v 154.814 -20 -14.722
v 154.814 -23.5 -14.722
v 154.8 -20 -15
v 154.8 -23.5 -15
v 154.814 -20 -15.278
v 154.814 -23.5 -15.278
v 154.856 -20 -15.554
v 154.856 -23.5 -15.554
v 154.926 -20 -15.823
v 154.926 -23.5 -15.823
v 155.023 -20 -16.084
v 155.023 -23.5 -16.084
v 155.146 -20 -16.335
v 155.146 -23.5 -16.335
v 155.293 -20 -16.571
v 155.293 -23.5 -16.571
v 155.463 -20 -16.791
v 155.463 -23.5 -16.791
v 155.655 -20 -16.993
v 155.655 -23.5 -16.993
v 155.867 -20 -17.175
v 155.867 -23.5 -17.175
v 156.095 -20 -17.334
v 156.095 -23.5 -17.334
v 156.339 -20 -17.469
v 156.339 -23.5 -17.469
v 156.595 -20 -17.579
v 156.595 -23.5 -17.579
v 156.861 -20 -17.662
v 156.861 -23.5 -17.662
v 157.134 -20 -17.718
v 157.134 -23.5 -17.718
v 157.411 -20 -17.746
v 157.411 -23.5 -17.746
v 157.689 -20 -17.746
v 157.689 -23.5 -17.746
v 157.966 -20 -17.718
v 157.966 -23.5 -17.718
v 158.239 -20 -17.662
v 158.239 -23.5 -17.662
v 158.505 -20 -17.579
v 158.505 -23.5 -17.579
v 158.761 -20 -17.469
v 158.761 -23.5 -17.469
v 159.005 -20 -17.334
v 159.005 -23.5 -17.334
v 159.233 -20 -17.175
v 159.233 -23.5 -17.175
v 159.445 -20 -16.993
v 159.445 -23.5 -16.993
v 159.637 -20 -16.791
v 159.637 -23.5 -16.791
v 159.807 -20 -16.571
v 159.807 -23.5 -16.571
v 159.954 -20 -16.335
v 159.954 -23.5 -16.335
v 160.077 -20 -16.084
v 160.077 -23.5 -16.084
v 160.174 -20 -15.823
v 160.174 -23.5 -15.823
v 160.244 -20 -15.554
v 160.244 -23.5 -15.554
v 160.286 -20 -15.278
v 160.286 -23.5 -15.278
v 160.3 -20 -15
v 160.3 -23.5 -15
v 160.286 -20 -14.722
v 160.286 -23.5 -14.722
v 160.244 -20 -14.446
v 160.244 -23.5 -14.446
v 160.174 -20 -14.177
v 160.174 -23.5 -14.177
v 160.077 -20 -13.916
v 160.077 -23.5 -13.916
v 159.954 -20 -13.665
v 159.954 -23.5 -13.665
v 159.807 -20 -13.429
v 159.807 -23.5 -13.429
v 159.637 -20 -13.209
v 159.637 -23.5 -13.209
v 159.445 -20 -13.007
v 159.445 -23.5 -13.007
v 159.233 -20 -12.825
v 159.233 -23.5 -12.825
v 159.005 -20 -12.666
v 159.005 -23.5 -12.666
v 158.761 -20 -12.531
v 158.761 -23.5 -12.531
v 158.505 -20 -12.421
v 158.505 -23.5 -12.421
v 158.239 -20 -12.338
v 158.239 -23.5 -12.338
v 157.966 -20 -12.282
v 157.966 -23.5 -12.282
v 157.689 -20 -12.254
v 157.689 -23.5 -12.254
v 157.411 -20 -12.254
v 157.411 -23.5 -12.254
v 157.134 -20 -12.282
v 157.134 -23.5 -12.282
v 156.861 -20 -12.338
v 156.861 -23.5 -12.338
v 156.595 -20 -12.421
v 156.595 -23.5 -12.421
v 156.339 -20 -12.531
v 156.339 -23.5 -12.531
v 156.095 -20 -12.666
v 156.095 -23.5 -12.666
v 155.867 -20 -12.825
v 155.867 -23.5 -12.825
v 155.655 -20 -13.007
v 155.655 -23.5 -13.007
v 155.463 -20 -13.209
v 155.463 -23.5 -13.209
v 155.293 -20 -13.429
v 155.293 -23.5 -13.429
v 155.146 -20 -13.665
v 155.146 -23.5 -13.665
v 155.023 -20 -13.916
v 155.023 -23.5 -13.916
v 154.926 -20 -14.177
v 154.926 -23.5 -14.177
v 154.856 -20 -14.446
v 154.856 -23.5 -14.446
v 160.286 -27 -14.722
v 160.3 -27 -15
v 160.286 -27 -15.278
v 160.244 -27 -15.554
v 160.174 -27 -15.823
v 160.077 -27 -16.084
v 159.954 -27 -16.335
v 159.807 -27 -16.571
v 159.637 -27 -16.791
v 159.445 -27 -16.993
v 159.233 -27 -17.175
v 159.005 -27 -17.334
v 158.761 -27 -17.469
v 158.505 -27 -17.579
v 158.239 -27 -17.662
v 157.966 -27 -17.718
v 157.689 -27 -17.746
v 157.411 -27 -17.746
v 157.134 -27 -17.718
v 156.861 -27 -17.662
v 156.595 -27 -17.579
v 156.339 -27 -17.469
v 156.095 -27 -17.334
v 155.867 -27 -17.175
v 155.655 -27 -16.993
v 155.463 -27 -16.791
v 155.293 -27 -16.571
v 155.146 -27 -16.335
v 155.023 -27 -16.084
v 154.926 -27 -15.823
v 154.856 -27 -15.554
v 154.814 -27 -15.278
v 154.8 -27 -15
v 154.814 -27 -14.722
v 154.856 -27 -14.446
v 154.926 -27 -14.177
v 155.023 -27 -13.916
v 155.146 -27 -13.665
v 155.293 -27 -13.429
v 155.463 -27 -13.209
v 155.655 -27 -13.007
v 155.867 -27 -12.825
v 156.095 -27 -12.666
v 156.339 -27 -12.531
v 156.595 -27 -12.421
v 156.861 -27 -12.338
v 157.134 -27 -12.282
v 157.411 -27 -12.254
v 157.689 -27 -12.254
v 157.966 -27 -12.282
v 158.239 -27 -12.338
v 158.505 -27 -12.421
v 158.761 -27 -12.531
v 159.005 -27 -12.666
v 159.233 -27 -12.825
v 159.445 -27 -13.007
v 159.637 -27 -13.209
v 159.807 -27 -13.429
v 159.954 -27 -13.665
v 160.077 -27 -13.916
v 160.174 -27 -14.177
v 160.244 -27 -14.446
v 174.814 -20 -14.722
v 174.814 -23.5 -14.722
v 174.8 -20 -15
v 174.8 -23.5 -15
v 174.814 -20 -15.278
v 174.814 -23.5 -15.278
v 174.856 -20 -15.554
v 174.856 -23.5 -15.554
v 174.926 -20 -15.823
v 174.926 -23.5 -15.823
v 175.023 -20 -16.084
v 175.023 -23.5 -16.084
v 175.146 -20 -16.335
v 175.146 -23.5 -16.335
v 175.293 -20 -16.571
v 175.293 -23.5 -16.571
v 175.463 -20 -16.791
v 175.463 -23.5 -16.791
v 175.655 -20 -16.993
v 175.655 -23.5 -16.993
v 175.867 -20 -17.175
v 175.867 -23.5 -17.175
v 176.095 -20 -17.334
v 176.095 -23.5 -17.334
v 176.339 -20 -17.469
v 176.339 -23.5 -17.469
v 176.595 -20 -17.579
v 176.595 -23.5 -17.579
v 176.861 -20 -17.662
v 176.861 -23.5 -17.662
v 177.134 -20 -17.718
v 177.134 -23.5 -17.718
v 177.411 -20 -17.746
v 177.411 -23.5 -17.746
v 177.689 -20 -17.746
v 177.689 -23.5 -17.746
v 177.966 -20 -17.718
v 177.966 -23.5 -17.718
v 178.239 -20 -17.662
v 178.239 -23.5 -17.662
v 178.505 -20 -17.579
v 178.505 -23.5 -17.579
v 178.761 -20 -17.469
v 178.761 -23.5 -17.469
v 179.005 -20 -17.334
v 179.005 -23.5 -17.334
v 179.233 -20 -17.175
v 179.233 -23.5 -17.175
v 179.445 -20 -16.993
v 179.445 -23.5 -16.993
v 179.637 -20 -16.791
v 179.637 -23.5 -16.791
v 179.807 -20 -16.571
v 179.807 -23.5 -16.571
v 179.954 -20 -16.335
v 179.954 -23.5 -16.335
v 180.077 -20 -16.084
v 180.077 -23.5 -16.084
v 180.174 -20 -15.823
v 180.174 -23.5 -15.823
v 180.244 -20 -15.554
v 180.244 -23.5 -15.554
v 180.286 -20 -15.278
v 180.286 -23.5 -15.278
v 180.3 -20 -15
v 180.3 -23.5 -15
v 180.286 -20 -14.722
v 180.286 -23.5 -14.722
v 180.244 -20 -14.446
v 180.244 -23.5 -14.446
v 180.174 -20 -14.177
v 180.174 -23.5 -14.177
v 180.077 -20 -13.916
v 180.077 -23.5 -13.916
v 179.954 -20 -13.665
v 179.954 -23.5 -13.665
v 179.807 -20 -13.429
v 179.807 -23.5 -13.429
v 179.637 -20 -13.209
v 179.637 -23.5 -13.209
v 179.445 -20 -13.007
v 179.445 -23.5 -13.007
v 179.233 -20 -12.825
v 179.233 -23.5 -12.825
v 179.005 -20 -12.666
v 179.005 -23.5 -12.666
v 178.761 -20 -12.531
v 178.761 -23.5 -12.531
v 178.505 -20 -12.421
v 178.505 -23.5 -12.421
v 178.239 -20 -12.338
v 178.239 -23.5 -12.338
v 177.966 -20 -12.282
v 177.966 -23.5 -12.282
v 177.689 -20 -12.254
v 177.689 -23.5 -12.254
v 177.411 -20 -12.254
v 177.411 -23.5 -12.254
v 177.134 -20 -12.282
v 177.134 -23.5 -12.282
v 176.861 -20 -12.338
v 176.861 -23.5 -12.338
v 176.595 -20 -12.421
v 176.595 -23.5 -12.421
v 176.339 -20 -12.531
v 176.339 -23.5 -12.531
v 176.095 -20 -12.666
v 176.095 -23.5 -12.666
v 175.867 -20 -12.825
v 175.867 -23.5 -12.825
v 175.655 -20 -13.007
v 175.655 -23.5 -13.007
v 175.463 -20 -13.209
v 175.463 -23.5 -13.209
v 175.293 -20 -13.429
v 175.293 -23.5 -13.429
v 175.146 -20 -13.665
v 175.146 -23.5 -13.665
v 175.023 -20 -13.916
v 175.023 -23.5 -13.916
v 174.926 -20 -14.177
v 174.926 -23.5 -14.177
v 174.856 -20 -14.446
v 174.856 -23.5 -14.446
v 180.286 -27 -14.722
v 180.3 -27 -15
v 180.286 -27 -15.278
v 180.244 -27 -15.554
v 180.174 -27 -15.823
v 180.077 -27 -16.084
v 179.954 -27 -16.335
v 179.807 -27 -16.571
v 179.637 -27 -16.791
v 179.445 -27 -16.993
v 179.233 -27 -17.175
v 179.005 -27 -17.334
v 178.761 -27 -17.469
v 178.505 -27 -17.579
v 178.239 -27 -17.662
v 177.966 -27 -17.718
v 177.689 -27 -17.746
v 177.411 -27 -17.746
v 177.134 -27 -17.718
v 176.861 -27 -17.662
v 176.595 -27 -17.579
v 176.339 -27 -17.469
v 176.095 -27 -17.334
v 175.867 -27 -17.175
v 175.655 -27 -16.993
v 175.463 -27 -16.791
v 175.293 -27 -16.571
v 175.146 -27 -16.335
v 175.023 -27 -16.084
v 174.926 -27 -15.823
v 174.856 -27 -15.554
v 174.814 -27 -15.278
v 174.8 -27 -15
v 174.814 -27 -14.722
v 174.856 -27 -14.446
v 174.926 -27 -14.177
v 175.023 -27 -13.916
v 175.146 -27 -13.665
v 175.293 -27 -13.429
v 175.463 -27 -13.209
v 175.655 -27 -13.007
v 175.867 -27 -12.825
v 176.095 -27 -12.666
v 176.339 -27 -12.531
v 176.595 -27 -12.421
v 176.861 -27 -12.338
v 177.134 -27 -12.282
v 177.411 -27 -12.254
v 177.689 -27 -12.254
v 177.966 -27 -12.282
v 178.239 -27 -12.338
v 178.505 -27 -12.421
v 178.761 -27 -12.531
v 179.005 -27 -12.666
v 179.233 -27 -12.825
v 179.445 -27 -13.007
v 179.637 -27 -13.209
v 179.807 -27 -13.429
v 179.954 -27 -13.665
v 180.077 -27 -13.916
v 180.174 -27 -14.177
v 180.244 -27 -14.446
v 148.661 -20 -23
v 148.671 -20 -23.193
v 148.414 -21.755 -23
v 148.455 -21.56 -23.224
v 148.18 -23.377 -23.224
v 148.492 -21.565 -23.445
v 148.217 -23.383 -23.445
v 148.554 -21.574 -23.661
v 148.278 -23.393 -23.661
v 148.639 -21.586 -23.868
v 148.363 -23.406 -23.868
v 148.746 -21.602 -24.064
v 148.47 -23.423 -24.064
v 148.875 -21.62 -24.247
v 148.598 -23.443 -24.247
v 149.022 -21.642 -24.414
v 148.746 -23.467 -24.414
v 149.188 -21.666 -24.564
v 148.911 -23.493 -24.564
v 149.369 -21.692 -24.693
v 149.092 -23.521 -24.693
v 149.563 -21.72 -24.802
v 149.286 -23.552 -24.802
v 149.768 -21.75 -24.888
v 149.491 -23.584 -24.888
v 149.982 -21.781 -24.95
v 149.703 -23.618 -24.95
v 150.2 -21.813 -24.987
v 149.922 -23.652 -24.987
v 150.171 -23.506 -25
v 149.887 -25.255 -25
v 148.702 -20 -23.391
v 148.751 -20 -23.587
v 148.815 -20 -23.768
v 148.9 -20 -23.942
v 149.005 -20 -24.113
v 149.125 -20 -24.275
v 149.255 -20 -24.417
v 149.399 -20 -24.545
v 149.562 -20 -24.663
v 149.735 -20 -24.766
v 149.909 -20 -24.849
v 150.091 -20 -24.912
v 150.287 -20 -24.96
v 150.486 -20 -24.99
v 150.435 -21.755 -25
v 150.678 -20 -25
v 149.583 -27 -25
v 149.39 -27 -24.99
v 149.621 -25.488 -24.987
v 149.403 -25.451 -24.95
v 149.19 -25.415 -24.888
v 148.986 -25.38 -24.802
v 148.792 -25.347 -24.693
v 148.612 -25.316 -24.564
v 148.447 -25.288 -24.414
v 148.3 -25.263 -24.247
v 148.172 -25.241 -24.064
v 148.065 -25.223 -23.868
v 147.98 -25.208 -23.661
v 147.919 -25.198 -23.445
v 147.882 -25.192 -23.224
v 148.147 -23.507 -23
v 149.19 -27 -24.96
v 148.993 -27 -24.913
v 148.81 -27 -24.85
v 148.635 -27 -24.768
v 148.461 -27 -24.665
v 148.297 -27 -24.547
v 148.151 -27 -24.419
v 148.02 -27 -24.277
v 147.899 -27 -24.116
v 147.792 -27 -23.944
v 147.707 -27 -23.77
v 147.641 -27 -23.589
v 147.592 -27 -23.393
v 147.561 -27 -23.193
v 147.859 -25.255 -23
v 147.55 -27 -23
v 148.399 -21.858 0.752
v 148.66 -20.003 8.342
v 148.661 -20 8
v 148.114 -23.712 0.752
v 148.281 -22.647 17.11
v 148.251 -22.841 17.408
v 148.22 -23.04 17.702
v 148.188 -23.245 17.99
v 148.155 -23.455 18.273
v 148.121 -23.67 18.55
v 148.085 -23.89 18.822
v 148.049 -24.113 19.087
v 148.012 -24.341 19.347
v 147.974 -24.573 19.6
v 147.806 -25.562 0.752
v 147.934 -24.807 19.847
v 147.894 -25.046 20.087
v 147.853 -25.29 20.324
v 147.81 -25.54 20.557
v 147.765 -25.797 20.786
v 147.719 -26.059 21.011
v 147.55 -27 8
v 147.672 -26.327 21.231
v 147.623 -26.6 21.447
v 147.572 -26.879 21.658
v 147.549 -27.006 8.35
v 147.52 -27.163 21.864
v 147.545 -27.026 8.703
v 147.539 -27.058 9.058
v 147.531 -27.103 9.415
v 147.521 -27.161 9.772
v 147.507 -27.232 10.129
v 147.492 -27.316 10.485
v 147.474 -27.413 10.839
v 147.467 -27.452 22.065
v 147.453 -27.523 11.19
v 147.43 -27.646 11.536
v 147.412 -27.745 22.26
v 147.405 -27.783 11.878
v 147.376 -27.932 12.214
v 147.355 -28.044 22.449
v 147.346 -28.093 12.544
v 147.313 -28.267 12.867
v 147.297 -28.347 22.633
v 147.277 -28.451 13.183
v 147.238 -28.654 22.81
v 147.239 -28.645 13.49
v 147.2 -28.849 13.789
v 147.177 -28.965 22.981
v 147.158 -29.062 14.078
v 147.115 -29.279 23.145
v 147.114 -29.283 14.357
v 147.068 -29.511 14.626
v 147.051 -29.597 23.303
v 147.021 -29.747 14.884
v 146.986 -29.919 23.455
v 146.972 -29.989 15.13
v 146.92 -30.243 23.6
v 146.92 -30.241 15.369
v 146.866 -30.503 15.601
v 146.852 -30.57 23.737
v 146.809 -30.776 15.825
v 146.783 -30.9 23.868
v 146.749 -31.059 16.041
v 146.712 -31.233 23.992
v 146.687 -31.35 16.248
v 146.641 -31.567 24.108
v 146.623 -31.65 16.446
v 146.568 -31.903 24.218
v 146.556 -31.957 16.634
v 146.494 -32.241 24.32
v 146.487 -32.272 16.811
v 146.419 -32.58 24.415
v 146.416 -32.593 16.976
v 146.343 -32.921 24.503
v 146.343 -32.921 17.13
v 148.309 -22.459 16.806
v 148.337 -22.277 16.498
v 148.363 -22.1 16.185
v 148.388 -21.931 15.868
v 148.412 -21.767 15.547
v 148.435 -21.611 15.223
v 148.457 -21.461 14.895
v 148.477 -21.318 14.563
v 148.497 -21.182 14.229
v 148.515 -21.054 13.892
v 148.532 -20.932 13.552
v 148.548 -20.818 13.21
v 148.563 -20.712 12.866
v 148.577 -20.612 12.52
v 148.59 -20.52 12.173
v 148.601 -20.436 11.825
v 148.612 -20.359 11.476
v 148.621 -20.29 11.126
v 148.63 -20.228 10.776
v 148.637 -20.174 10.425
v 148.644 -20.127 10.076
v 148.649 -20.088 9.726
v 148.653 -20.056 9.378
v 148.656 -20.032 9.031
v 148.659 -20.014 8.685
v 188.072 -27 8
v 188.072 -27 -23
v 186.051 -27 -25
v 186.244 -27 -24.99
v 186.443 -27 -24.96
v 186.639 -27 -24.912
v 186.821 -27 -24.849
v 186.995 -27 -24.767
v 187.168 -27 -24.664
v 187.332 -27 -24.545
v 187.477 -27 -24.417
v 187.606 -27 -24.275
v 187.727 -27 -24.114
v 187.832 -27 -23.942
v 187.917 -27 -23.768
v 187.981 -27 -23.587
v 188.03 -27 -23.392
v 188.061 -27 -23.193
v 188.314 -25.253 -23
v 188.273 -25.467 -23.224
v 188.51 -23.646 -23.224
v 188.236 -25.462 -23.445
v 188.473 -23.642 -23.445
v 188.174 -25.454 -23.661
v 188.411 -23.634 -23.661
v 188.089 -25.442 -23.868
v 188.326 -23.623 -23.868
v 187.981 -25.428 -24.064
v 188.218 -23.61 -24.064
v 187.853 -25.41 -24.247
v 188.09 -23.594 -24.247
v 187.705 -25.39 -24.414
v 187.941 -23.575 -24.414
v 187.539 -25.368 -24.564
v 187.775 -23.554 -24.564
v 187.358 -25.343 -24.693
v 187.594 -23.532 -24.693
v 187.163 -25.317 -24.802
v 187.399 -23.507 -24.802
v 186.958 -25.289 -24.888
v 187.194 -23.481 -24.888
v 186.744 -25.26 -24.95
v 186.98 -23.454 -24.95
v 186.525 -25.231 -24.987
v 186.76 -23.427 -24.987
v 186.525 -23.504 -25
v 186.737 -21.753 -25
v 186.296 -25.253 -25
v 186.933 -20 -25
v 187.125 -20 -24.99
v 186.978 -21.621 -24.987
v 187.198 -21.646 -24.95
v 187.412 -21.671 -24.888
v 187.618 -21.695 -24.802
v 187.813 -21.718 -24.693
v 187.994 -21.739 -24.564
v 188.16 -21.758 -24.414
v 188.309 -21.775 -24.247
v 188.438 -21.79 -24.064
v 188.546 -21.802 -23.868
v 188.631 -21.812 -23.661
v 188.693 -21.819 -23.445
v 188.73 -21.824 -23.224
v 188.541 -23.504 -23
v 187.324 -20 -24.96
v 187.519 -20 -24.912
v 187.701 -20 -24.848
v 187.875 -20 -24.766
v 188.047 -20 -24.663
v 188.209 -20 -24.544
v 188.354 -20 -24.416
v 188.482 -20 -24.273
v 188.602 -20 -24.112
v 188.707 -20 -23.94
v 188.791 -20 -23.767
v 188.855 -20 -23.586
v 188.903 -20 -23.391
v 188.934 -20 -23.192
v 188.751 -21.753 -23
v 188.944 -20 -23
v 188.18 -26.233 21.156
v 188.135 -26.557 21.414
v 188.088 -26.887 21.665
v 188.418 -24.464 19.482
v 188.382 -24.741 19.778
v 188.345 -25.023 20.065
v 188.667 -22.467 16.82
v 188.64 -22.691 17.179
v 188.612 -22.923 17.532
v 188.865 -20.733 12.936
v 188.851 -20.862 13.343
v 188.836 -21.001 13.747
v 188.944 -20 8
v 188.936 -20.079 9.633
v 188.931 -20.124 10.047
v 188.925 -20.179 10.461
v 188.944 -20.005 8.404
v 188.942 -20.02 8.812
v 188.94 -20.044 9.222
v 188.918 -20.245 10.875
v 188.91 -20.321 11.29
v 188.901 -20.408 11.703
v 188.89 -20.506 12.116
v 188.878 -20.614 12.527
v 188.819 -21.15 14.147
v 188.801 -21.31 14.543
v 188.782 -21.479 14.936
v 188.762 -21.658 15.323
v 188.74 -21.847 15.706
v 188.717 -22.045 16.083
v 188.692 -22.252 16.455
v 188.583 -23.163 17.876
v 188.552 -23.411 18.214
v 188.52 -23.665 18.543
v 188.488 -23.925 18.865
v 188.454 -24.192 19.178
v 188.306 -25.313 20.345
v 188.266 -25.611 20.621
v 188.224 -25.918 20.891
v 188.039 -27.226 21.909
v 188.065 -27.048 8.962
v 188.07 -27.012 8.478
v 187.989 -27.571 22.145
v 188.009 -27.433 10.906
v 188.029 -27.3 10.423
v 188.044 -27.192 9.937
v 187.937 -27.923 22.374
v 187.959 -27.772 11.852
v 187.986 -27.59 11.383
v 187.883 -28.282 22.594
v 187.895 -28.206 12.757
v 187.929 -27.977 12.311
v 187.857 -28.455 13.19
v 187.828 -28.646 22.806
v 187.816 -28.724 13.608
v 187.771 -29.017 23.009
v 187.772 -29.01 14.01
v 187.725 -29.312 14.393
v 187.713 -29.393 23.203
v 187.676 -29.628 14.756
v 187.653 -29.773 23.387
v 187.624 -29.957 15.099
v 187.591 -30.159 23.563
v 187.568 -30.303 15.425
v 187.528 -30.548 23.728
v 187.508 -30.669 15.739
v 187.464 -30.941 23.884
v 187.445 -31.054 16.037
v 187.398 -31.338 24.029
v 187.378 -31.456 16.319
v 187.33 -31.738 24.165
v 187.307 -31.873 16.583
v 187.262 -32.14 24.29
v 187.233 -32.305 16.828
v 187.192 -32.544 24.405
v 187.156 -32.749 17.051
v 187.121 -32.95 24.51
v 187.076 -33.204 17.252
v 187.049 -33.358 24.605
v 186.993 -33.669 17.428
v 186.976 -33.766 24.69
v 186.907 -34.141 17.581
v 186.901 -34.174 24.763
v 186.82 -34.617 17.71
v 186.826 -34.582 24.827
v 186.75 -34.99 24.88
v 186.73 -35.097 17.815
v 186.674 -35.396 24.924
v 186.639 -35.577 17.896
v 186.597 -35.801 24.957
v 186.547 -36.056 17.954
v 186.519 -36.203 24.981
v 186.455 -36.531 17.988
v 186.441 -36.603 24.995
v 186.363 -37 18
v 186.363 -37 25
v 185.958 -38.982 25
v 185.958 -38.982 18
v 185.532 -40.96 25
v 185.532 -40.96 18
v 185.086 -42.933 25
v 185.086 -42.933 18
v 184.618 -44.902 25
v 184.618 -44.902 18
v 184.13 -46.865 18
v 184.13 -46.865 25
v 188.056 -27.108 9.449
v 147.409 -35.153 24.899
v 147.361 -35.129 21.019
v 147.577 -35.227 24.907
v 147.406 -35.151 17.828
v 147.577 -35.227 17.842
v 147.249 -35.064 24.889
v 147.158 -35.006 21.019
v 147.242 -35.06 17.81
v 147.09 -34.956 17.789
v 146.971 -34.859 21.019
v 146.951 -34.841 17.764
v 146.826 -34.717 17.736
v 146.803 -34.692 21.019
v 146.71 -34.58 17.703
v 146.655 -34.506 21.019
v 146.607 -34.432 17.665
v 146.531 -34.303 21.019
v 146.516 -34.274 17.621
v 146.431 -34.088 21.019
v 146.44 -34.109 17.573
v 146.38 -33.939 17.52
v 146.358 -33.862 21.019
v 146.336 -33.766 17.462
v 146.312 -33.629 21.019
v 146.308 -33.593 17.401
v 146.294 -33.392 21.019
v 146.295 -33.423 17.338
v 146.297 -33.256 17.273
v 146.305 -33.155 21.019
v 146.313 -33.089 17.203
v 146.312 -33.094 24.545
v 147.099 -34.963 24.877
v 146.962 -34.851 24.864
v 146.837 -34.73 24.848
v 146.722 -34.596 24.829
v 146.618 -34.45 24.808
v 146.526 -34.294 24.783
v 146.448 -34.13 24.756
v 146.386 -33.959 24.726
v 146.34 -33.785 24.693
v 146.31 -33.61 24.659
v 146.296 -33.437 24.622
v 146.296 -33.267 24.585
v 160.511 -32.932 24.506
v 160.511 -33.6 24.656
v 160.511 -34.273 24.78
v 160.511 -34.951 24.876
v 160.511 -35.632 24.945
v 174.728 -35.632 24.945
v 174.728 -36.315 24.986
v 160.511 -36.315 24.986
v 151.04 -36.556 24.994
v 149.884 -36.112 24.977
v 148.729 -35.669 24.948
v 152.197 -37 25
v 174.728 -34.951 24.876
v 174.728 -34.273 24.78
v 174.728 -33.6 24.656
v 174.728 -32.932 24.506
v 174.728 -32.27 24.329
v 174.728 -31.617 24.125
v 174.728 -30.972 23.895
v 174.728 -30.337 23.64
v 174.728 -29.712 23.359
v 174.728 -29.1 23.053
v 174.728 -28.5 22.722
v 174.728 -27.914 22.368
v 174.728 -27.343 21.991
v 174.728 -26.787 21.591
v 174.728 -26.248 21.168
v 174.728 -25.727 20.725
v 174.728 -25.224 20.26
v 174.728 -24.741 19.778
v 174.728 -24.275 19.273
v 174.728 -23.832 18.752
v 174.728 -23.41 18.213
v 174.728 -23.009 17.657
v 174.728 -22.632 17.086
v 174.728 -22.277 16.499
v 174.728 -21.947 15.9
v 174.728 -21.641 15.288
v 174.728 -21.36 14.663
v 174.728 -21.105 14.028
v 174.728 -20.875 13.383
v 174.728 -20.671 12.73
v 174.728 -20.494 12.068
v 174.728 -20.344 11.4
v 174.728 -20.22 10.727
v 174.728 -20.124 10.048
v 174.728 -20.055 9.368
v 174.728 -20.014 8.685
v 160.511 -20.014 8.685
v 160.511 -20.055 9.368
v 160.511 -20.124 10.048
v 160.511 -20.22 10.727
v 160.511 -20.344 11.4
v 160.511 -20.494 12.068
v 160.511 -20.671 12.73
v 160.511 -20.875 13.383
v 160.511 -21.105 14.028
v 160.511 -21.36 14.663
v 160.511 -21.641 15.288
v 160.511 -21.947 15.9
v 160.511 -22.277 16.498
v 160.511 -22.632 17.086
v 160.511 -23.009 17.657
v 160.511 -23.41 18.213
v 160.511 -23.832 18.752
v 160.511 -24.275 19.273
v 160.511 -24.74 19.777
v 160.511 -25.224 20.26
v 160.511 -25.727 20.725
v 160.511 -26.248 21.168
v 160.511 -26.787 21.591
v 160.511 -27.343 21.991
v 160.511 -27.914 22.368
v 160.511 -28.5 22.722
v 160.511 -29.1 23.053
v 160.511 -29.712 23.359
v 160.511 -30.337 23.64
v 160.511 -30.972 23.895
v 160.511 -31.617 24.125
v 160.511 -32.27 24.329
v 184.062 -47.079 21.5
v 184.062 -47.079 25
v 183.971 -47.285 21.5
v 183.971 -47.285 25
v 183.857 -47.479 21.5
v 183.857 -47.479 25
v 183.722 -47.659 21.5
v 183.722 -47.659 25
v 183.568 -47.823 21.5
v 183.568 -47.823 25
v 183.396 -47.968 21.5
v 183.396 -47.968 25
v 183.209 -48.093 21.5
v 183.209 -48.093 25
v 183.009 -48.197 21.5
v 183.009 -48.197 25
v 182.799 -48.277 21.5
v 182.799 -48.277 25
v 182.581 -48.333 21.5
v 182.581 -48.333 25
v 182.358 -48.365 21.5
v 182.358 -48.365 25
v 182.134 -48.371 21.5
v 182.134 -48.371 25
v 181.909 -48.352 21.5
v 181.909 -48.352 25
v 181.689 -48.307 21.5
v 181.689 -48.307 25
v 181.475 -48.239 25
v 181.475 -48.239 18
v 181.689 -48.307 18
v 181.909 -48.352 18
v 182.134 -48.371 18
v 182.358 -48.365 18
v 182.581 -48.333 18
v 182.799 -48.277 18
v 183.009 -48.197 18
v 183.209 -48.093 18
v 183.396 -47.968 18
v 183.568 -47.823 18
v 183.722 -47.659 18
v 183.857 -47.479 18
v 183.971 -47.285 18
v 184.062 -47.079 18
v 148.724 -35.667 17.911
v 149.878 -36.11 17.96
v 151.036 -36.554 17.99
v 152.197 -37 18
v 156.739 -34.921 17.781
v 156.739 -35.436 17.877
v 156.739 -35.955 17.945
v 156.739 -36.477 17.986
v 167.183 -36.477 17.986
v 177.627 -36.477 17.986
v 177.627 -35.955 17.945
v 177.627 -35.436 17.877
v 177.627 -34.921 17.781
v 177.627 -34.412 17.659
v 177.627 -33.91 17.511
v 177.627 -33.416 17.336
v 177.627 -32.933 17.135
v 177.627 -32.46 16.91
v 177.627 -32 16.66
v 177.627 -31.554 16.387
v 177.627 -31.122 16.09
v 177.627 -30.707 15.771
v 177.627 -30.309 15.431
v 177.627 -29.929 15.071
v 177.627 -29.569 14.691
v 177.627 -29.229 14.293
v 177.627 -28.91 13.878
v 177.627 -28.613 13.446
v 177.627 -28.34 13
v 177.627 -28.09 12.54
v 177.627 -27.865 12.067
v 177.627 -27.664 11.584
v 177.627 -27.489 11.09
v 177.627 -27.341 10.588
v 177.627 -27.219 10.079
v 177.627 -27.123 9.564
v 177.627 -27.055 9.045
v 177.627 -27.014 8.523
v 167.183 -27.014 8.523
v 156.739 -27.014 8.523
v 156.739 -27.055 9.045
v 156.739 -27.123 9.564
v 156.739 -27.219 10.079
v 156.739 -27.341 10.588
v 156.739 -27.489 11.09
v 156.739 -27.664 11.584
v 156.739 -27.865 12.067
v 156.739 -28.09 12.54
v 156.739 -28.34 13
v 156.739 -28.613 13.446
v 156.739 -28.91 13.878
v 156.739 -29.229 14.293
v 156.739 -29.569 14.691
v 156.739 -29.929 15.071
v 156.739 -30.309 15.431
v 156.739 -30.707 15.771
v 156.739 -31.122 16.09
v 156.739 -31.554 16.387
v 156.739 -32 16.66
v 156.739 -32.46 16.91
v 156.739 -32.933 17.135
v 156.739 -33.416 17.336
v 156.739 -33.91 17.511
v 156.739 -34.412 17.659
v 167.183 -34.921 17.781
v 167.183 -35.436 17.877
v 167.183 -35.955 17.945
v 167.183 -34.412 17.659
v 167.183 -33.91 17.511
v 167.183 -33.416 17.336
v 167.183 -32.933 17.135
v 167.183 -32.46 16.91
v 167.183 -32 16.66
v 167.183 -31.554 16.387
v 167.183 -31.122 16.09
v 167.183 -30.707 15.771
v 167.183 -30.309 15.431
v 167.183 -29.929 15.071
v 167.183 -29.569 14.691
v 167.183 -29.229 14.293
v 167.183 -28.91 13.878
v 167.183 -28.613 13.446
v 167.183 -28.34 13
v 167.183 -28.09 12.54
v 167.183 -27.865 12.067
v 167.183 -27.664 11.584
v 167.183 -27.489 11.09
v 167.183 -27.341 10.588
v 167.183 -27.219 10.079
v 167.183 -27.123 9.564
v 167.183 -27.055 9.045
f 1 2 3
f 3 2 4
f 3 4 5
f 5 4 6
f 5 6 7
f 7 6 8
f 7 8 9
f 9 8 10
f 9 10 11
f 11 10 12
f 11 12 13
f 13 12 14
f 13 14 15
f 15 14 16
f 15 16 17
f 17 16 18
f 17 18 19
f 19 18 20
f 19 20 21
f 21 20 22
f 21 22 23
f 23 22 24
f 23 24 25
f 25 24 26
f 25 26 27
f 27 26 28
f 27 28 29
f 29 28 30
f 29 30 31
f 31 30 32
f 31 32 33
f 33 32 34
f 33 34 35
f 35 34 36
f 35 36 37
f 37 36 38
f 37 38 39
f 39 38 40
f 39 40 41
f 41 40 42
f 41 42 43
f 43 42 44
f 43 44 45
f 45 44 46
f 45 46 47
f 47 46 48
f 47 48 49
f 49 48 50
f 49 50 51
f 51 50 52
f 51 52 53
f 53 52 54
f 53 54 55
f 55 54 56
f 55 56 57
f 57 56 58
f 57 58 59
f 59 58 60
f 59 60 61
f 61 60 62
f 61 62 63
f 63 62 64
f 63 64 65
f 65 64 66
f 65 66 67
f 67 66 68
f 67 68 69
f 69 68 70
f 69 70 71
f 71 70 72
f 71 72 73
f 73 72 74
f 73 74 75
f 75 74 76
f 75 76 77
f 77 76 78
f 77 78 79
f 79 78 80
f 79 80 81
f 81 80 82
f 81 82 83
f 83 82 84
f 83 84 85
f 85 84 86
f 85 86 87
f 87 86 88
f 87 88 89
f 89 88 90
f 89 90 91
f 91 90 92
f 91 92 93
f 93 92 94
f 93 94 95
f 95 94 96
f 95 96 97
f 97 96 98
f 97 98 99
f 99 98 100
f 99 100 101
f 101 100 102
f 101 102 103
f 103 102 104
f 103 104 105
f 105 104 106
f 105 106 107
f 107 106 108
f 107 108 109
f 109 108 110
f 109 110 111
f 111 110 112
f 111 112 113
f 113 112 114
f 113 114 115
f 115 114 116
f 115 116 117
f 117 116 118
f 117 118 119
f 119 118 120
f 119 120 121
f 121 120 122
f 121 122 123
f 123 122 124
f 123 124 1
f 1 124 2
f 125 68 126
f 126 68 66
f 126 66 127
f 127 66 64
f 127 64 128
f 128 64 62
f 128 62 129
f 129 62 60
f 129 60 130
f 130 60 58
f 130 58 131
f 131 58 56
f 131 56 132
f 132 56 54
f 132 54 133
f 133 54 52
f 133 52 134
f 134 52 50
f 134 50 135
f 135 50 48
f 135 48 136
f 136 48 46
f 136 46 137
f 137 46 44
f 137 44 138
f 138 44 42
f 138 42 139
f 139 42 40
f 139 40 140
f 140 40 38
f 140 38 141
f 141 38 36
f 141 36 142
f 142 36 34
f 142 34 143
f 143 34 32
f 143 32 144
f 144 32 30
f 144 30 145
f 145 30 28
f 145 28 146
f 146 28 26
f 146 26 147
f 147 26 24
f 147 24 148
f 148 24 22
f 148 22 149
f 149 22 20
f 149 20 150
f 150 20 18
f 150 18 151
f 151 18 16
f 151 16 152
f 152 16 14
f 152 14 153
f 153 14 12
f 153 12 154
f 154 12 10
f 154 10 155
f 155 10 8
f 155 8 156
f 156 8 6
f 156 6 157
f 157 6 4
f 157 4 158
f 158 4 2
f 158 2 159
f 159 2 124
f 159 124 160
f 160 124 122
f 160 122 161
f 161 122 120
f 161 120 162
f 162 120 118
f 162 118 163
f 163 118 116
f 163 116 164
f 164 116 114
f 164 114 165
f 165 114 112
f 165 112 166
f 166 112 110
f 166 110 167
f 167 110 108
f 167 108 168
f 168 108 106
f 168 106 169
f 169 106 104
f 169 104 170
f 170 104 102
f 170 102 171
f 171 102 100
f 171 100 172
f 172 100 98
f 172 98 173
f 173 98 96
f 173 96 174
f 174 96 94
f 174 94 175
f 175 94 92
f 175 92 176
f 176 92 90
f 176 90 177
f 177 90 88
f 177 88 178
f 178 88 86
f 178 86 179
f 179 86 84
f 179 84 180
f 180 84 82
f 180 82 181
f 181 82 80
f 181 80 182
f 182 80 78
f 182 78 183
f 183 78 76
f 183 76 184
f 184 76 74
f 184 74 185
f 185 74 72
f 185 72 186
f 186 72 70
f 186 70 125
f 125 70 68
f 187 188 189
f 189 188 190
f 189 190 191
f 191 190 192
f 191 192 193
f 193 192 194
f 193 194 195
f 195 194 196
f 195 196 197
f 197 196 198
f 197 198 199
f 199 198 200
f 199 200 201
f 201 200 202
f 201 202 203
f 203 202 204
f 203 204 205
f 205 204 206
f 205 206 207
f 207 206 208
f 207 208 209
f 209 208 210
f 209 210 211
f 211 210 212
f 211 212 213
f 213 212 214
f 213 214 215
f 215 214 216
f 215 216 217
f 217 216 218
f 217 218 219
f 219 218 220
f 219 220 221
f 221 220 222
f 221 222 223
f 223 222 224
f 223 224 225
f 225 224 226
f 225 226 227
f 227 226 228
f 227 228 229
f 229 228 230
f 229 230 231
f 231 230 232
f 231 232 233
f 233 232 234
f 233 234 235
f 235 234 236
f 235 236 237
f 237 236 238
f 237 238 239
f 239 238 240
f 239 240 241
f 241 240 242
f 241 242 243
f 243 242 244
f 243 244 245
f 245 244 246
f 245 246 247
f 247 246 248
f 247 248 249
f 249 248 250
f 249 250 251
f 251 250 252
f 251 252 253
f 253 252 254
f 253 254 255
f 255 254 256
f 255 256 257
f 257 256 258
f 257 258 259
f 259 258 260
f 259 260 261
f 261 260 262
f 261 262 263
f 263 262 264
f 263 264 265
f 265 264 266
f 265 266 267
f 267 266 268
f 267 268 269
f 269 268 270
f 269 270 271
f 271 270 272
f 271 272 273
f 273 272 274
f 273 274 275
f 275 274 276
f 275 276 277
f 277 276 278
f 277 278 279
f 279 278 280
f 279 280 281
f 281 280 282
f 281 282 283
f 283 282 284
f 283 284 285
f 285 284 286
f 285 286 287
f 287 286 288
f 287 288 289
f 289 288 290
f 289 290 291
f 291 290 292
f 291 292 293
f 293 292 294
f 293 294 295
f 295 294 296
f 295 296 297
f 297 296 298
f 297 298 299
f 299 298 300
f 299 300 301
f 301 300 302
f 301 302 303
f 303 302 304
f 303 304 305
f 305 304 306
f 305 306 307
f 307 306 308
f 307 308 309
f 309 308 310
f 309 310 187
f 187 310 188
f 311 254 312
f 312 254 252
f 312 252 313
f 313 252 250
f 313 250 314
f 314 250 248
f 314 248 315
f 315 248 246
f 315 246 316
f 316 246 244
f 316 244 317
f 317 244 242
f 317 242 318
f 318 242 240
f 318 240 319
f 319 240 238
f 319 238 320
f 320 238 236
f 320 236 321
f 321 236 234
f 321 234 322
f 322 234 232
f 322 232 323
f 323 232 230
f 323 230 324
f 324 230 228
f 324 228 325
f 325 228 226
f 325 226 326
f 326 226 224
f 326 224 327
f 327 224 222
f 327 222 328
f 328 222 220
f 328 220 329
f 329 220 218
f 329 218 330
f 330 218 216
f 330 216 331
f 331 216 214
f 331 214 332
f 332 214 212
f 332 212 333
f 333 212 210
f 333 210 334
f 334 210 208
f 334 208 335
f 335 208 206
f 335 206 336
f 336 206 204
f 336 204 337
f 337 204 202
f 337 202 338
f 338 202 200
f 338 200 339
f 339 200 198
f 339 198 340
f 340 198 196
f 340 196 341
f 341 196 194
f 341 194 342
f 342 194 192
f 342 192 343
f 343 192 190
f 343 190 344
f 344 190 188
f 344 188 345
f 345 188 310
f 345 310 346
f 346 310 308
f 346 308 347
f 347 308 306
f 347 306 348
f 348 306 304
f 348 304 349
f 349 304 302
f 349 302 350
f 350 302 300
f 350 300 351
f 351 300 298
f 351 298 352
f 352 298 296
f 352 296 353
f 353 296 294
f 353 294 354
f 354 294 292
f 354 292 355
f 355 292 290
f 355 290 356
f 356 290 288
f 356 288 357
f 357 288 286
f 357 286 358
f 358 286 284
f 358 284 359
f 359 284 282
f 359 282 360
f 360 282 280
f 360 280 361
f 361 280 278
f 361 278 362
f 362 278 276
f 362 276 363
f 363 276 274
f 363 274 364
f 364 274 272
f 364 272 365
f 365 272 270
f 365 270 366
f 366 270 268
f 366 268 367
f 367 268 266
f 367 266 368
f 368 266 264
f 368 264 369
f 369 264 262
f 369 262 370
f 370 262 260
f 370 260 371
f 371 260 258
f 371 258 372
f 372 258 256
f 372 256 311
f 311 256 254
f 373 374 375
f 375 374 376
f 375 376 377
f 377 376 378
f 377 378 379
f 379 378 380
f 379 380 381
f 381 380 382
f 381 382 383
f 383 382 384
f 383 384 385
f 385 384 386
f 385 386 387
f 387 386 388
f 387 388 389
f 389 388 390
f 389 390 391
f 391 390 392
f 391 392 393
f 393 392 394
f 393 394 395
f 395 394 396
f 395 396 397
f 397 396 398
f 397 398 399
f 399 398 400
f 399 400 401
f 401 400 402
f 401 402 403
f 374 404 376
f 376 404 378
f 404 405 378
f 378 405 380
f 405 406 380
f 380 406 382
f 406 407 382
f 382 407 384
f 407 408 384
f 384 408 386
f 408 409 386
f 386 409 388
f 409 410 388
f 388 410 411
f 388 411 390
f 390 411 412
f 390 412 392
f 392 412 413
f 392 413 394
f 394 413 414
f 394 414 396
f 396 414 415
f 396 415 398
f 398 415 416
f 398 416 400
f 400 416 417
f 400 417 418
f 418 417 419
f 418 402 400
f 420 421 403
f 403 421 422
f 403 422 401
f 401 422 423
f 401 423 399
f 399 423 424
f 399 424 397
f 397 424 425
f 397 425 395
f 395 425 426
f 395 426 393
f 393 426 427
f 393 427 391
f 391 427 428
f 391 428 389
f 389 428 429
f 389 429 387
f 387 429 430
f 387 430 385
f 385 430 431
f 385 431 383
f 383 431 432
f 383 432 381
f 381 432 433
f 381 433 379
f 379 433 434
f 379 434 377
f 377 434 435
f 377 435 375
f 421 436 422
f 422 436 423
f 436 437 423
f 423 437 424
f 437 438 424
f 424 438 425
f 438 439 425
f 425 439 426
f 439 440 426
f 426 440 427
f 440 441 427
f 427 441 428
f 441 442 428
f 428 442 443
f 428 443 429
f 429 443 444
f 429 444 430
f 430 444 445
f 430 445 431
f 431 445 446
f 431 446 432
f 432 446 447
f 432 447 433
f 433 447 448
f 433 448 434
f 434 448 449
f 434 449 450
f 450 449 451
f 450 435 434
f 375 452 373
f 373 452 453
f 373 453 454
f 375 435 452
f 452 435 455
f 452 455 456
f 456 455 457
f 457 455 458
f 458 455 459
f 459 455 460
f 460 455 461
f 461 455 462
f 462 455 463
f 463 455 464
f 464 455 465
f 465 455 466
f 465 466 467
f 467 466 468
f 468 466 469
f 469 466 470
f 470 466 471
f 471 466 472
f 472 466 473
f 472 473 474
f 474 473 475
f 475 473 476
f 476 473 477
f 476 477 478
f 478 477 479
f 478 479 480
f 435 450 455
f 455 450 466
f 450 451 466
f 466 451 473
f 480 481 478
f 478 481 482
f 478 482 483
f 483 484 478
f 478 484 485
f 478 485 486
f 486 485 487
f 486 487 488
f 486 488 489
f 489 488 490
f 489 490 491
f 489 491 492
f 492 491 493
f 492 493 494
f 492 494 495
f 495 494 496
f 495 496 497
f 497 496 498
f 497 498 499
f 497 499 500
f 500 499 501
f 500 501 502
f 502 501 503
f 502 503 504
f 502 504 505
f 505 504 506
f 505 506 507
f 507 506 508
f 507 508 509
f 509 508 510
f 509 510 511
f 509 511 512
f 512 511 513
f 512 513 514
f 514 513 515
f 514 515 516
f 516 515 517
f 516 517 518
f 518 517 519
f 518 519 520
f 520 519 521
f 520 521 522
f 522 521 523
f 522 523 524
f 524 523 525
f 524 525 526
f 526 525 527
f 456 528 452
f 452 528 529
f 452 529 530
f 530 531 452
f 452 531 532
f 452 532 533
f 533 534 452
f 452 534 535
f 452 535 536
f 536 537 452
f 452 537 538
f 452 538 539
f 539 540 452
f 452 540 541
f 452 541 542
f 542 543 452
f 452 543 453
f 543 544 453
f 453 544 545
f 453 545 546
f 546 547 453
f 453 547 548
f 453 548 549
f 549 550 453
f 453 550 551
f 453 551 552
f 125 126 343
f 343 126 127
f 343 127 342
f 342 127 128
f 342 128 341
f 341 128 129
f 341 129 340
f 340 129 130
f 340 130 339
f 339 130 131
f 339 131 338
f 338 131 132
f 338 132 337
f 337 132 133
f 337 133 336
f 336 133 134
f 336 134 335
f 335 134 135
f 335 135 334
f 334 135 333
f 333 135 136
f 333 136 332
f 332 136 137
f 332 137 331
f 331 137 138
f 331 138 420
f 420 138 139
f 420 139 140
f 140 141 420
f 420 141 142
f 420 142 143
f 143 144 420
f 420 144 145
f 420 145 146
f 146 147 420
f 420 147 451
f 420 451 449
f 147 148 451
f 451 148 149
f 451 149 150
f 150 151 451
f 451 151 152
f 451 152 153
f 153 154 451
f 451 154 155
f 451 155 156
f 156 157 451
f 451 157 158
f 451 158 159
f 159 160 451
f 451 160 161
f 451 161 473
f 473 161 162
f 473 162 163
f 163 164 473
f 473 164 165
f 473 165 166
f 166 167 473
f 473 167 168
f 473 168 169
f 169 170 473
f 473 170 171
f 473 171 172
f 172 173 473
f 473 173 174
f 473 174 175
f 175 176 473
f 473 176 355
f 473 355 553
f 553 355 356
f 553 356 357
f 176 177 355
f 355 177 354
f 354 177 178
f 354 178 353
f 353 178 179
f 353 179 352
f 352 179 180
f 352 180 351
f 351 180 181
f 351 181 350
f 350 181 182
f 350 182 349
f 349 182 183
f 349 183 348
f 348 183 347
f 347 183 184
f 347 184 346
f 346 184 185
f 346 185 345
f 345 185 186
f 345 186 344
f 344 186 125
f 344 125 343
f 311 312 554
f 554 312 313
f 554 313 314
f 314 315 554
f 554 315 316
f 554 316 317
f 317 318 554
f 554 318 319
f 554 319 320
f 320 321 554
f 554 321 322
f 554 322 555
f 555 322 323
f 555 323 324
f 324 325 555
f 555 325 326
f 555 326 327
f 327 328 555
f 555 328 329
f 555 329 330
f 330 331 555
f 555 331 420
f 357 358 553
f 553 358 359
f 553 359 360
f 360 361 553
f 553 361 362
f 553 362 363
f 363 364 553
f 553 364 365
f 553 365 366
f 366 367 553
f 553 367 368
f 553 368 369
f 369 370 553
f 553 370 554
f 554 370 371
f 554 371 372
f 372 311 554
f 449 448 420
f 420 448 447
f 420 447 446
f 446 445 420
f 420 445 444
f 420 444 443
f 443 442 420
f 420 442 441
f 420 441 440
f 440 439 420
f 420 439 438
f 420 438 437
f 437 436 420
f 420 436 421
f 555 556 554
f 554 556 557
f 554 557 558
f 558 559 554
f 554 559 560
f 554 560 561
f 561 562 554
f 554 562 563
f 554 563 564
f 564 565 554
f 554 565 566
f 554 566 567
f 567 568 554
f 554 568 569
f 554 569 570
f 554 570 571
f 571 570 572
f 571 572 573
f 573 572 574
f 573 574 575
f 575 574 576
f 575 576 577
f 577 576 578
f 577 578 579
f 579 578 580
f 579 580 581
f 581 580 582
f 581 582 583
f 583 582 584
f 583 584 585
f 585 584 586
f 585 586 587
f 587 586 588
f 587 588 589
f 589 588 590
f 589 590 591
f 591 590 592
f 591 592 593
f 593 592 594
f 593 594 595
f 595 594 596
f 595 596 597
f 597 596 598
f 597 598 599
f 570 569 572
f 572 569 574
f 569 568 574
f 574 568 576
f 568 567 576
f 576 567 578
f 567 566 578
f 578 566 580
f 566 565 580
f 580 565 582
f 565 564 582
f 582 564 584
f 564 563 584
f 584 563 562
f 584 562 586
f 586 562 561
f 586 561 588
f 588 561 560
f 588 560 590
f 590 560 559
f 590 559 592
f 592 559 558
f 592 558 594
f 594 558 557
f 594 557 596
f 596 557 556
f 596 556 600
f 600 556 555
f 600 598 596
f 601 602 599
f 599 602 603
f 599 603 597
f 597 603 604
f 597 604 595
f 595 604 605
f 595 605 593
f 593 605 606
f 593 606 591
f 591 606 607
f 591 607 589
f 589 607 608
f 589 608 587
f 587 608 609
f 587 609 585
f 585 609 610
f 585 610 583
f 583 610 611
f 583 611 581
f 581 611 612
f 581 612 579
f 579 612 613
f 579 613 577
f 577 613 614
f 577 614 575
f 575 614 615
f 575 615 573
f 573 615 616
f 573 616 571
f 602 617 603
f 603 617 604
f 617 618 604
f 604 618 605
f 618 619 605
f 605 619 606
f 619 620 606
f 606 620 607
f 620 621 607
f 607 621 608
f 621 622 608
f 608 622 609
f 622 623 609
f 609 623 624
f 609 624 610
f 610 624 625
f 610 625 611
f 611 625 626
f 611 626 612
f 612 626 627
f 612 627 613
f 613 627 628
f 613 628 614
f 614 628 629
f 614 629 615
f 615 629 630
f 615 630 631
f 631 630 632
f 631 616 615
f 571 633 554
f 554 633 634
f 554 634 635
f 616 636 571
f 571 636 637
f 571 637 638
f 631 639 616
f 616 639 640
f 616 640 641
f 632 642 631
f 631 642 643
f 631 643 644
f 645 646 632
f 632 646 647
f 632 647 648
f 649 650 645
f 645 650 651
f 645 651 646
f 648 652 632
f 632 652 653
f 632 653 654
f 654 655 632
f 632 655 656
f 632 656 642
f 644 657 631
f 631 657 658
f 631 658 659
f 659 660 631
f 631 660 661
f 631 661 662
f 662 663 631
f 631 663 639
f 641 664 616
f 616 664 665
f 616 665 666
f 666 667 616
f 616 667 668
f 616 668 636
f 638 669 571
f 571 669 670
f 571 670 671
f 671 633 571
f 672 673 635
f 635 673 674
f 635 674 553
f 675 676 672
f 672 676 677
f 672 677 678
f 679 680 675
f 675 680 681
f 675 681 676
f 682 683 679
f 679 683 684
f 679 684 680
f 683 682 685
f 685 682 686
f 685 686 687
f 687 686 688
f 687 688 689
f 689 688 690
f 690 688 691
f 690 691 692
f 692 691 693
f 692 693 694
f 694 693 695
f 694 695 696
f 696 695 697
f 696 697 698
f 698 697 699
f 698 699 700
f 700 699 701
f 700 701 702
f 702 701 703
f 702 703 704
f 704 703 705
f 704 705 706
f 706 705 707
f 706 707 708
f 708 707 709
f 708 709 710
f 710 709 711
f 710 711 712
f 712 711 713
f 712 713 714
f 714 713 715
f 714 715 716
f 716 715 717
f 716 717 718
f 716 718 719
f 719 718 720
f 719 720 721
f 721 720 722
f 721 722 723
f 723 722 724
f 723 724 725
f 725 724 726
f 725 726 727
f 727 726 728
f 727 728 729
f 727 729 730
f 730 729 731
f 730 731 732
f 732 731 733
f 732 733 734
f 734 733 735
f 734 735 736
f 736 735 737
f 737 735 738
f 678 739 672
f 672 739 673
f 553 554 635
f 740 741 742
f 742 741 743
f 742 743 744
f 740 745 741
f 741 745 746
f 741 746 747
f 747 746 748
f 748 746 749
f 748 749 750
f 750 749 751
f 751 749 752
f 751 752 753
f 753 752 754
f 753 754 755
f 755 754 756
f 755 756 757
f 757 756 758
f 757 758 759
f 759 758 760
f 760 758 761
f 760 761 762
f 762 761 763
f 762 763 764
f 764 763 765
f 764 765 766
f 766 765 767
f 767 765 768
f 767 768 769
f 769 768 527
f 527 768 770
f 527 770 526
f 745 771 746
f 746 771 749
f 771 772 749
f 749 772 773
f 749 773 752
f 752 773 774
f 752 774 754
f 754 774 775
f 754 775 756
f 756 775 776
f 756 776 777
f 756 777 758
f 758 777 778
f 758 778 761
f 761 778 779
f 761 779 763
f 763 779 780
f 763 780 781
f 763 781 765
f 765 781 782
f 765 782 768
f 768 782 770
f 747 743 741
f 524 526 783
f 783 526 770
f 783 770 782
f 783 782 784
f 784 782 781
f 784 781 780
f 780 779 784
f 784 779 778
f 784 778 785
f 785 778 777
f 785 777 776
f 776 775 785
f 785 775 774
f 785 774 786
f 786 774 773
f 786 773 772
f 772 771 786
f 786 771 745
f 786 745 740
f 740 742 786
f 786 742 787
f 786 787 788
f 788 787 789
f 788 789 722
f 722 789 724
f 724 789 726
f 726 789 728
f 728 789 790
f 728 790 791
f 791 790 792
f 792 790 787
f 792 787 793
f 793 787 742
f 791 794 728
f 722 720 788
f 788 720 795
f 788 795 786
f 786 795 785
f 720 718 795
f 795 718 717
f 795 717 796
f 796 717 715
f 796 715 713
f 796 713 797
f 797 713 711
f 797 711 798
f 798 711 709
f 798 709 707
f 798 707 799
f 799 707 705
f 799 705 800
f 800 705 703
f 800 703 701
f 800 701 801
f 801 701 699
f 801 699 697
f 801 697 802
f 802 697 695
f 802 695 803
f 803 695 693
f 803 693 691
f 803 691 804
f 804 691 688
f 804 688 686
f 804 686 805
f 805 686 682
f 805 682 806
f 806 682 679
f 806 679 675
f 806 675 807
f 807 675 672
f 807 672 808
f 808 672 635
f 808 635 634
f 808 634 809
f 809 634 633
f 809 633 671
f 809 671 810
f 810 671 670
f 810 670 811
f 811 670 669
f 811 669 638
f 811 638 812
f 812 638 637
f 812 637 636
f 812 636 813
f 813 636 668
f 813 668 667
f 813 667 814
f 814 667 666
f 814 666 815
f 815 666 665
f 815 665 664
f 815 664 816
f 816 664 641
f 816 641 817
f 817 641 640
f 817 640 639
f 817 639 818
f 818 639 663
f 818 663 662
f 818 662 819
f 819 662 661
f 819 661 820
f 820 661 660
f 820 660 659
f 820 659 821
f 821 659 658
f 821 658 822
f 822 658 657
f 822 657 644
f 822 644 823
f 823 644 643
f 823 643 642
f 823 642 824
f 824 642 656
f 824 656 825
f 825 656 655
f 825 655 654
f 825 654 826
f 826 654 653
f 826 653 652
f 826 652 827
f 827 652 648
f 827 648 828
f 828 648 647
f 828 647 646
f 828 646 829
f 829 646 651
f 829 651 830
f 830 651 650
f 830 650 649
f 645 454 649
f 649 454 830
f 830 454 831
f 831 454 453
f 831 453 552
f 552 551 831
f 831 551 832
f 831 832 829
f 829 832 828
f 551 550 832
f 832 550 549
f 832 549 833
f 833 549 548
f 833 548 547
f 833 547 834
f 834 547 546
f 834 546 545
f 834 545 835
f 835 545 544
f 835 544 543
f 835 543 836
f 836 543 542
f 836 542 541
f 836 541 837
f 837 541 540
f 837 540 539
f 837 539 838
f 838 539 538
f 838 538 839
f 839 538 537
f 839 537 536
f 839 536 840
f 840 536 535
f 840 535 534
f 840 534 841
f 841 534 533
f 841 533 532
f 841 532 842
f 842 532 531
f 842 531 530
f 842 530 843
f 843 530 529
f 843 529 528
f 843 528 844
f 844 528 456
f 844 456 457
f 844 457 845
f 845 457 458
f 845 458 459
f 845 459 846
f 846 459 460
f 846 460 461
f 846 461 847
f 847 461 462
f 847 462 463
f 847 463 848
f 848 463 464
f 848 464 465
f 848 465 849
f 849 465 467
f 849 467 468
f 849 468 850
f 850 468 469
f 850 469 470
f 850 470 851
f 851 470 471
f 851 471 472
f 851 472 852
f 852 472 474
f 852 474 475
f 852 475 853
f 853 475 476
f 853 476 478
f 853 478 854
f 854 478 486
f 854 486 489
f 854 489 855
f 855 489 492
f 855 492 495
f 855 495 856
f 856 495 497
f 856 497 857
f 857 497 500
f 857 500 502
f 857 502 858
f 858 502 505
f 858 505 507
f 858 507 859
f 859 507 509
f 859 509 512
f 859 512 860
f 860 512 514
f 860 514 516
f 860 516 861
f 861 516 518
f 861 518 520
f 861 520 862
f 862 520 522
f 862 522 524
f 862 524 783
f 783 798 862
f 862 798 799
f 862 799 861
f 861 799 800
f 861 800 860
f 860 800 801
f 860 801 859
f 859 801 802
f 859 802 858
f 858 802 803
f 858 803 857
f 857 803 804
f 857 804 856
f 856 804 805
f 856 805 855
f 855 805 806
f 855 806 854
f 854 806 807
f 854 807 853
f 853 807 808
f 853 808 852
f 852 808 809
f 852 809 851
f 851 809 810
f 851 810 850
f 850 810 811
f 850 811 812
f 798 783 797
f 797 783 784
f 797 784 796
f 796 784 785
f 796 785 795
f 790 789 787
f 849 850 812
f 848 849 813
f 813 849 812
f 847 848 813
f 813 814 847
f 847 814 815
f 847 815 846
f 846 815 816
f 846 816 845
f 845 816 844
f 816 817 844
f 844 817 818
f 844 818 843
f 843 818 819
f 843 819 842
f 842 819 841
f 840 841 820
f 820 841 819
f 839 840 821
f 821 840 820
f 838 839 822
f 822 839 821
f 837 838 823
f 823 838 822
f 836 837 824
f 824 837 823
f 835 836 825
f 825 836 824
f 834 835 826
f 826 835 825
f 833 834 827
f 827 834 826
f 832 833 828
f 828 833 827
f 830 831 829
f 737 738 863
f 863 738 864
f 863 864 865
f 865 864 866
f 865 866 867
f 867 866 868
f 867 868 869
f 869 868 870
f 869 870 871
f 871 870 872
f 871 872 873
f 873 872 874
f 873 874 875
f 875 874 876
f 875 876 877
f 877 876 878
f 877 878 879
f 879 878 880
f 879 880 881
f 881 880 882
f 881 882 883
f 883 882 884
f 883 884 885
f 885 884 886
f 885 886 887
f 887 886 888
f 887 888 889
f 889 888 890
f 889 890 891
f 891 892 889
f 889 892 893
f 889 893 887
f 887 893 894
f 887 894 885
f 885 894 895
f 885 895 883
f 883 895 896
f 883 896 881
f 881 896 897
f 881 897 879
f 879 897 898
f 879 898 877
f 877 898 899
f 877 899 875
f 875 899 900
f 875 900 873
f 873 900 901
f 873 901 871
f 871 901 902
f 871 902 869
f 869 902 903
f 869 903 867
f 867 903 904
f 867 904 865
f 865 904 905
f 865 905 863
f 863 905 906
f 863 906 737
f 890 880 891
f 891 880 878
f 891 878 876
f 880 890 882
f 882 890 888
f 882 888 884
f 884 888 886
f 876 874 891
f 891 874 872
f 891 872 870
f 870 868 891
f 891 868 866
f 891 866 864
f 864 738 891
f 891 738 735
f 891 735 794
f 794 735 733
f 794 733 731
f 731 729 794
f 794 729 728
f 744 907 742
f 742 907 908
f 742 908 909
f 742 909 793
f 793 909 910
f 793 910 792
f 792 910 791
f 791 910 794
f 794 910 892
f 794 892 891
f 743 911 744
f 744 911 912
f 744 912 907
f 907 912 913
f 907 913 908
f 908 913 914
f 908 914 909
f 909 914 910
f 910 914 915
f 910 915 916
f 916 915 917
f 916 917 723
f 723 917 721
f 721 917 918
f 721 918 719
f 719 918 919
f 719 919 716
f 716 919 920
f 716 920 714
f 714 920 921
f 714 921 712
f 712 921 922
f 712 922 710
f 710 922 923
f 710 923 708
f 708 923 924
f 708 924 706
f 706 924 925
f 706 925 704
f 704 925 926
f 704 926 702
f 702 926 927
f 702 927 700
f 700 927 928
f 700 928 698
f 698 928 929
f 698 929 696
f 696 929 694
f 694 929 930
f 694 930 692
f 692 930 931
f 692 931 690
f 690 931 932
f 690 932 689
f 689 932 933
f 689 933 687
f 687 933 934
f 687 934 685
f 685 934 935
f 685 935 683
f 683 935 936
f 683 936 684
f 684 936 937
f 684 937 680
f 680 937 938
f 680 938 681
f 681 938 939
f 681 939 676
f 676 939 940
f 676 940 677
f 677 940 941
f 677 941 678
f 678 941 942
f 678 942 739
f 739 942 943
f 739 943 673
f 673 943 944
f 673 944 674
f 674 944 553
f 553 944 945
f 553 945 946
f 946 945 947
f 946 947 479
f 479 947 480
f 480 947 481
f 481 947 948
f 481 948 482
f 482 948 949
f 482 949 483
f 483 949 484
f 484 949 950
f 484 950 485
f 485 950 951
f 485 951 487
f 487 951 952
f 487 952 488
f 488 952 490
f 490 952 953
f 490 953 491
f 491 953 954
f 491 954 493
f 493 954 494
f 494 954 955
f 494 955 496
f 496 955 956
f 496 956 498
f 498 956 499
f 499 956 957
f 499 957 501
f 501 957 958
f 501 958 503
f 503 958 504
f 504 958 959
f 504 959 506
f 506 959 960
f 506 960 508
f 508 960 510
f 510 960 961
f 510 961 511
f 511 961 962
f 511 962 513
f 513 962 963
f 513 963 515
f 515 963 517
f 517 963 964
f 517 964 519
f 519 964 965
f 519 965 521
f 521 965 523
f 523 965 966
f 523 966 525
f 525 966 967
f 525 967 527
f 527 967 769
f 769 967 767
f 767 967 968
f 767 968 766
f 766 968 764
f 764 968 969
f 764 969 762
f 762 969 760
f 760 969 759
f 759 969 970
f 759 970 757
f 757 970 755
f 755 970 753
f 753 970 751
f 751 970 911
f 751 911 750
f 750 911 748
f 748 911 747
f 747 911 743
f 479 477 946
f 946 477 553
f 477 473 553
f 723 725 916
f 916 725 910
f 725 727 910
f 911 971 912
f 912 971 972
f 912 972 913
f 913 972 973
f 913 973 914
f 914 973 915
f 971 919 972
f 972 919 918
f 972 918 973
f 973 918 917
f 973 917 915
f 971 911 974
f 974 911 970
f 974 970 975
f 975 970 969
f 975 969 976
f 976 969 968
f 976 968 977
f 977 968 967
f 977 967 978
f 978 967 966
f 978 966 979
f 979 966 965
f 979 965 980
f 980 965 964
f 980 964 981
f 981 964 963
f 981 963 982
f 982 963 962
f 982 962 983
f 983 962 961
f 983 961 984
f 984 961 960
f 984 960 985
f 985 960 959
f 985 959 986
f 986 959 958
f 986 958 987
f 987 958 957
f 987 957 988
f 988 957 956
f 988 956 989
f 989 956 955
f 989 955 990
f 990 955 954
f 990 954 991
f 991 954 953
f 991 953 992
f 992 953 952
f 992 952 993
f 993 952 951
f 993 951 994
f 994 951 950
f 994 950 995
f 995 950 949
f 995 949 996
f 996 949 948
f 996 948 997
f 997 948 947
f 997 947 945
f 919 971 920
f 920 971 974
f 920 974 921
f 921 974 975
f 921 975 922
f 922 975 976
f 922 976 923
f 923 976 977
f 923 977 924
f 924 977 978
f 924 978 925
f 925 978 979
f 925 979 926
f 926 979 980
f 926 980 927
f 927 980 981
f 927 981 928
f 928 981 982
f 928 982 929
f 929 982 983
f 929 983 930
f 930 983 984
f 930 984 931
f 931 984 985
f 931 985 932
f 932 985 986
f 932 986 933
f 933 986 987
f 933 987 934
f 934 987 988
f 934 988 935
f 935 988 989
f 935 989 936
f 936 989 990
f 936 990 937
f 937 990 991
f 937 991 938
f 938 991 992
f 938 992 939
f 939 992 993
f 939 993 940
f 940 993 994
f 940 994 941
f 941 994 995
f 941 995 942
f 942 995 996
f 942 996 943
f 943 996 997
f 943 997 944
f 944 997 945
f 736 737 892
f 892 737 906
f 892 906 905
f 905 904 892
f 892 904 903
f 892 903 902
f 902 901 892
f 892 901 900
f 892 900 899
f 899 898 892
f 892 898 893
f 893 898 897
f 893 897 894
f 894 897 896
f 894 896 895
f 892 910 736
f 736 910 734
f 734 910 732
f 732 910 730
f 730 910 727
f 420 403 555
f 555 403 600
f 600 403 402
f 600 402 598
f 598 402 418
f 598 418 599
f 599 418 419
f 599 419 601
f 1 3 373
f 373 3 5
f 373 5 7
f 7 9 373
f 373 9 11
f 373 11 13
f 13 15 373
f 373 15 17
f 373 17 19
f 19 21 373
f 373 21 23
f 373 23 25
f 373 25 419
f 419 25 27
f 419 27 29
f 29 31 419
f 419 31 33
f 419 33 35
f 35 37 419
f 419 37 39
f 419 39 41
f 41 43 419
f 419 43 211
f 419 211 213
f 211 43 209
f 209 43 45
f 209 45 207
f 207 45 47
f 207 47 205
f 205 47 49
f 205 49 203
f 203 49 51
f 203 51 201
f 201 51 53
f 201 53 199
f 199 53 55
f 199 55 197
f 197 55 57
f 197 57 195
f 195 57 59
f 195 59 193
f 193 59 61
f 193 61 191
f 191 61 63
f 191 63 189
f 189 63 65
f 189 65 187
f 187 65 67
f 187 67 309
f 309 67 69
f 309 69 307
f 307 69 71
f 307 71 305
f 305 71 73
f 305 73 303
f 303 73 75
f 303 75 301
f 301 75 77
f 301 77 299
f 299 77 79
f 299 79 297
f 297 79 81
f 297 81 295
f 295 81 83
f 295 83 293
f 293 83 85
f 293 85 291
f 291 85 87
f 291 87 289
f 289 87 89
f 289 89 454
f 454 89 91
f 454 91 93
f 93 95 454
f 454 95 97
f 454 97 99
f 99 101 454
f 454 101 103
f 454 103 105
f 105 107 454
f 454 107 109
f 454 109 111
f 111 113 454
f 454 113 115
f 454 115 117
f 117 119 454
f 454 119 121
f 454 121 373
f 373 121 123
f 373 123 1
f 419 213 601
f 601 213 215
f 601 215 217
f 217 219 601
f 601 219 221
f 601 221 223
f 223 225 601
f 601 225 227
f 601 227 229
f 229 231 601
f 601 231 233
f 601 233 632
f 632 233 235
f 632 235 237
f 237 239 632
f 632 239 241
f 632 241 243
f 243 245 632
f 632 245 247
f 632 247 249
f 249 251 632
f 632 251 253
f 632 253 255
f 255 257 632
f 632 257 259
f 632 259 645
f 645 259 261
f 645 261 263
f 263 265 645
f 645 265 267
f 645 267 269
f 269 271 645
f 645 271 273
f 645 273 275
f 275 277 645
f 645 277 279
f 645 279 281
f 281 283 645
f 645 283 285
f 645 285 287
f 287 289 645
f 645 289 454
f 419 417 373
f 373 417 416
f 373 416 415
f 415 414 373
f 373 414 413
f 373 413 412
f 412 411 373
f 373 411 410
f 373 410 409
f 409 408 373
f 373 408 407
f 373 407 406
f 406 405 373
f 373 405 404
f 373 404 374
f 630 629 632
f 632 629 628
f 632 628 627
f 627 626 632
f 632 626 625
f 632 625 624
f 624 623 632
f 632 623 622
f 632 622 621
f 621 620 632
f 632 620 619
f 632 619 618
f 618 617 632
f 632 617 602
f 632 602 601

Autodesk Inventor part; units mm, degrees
ref_plane "YZ Plane" through (0, 0, 0) normal (1, 0, 0) x (0, 1, 0)
ref_plane "XZ Plane" through (0, 0, 0) normal (0, 1, 0) x (-1, 0, 0)
ref_plane "XY Plane" through (0, 0, 0) normal (0, 0, 1) x (1, 0, 0)
sketch "スケッチ1" plane through (0, 0, 0) normal (0, 0, 1) x (1, 0, 0)
  line L0 (0, 0) -> (410.7754, -157.6819) construction
  line L1 (0, 0) -> (440, 0) construction
  line L2 (460, -20) -> (-20, -20)
  line L3 (-20, -20) -> (-20, 20) construction
  line L4 (-20, 20) -> (460, 20) construction
  line L5 (460, 20) -> (460, -20) construction
  line L6 (460, -20) -> (-20, 20) construction
  line L7 (-20, -20) -> (460, 20) construction
  line L8 (-25.839, -11.5042) -> (422.2796, -183.5209) construction
  line L9 (422.2796, -183.5209) -> (436.6144, -146.1776) construction
  line L10 (436.6144, -146.1776) -> (-11.5042, 25.839)
  line L11 (-11.5042, 25.839) -> (-25.839, -11.5042) construction
  line L12 (-25.839, -11.5042) -> (436.6144, -146.1776) construction
  line L13 (422.2796, -183.5209) -> (-11.5042, 25.839) construction
  circle A0 centre (0, 0) radius 150
  circle A1 centre (0, 0) radius 190
  point P0 (220, 0)
  point P1 (205.3877, -78.8409)
  point P2 (183.5622, -49.04)
  point P3 (188.9444, -20)
  point P4 (148.6607, -20)
  point P5 (145.9541, -34.6036)
  dimension "d0" = 159
  dimension "d1" = 440
  dimension "d2" = 440
  dimension "d3" = 40
  dimension "d4" = 480
  dimension "d5" = 480
  dimension "d6" = 40
  dimension "d7" = 20
  dimension "d8" = 300
  dimension "d30" = 40
extrude "押し出し1" add sketch "スケッチ1" along normal mid plane 50 contours A1 L10 A0 L2 picked at (173.5094, -32.9975)
ref_plane "作業平面1" through (148.6607, -27, 25) normal (0, 1, 0) x (1, 0, 0)
sketch "スケッチ2" plane through (148.6607, -27, 25) normal (0, 1, 0) x (1, 0, 0)
  line L0 (-2.7066, 7) -> (40.2837, 7)
  line L1 (40.2837, 7) -> (40.2837, 50)
  line L2 (40.2837, 50) -> (-2.7066, 50)
  line L3 (-2.7066, 50) -> (-2.7066, 7)
  line L4 (40.2837, 0) -> (0, 0) projected
  line L5 (-2.7066, 50) -> (0, 50) projected
  line L6 (40.2837, 50) -> (34.9015, 50) projected
  point P0 (-148.6607, 25)
  dimension "d13" = 7
extrude "押し出し2" cut sketch "スケッチ2" against normal blind 50
fillet "フィレット1" radius 10 1 edges at (167.8109, -27, 18)
fillet "フィレット2" radius 17 1 edges at (168.8026, -20, 25)
fillet "フィレット3" radius 2 2 edges at (183.5622, -49.04, 21.5) (145.9541, -34.6036, 21.2694)
fillet "フィレット4" radius 2 2 edges at (188.5406, -23.5041, -25) (148.1467, -23.5066, -25)
sketch "スケッチ3" plane through (148.6607, -27, 25) normal (0, -1, 0) x (1, 0, 0)
  line L0 (37.3904, -50) -> (-1.1107, -50) projected
  line L1 (-1.1107, -50) -> (-1.1107, -17) projected
  point P0 (-148.6607, -25)
  point P1 (8.8893, -40)
  point P2 (0.9221, -50)
  point P3 (-1.1107, -48)
  point P4 (50.415, -50)
  point P5 (28.8893, -40)
  dimension "d20" = 10
  dimension "d21" = 10
  dimension "d29" = 20
hole "穴1" at (157.55, -27, -15) at (177.55, -27, -15) direction (0, 1, 0) diameter 5.5 end through all clearance for "Flat Head Machine Screw" size "M5" standard "Ansi Metric M Profile"
properties part number "scara-base28" material "ABS プラスチック"
